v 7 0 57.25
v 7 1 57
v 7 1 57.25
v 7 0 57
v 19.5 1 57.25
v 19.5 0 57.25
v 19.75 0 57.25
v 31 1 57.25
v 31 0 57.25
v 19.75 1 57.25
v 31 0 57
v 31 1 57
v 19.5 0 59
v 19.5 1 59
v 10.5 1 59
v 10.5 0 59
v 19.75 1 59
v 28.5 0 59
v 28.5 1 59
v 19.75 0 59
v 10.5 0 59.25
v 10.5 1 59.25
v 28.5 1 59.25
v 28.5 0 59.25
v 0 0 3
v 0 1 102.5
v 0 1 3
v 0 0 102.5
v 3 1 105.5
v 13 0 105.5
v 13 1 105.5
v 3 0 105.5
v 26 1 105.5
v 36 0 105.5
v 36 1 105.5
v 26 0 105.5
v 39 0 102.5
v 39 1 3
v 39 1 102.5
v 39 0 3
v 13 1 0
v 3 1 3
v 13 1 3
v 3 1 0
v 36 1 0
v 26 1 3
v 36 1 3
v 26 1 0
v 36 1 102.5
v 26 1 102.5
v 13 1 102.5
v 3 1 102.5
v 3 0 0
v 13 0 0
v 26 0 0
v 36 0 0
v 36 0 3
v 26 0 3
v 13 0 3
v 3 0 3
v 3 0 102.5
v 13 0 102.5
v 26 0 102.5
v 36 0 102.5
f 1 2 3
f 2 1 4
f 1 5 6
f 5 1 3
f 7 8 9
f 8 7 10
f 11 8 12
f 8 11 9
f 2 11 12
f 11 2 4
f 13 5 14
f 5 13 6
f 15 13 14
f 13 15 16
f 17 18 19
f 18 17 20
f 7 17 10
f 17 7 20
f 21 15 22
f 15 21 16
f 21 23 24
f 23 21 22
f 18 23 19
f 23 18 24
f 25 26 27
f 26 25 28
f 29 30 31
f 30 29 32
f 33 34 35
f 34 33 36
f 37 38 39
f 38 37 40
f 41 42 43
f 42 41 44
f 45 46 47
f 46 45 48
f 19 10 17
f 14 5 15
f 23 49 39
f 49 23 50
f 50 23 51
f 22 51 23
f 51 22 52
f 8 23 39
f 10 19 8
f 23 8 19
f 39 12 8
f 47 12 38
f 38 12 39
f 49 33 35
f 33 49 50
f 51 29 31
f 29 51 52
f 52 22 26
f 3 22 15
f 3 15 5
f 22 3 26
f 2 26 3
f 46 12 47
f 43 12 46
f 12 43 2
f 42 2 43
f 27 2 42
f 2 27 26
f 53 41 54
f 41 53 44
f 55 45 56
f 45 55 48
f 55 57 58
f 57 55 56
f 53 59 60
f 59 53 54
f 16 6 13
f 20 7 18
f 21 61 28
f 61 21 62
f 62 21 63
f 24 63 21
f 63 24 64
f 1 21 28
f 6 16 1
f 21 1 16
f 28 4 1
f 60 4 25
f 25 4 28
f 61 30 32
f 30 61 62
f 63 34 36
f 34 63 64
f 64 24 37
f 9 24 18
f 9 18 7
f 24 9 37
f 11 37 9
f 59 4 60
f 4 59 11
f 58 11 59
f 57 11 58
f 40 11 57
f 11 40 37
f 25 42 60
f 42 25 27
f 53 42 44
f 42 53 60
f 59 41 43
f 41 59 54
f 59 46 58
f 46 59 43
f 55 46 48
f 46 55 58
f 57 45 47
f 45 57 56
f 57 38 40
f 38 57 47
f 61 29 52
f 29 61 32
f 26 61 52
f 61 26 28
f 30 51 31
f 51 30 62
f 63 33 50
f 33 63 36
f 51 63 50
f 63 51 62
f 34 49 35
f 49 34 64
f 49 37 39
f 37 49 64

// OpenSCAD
difference()
{
color("red")translate([0,0,0])cube([39,1,105.5]);

//Bottom Corners
color("yellow")translate([-1,-1,-1])cube([4,3,4]);
color("yellow")translate([13,-1,-1])cube([13,3,4]);
color("yellow")translate([36,-1,-1])cube([4,3,4]);
    
//Top Corners
color("pink")translate([-1,-1,102.5])cube([4,3,4]);
color("pink")translate([13,-1,102.5])cube([13,3,4]);
color("pink")translate([36,-1,102.5])cube([4,3,4]);
    
//The Slit
union()
{
color("white")translate([7,-1,57])cube([24,3,0.25]);
color("white")translate([19.5,-1,57])cube([0.25,3,2]);
color("white")translate([10.5,-1,59])cube([18,3,0.25]);
}
}
